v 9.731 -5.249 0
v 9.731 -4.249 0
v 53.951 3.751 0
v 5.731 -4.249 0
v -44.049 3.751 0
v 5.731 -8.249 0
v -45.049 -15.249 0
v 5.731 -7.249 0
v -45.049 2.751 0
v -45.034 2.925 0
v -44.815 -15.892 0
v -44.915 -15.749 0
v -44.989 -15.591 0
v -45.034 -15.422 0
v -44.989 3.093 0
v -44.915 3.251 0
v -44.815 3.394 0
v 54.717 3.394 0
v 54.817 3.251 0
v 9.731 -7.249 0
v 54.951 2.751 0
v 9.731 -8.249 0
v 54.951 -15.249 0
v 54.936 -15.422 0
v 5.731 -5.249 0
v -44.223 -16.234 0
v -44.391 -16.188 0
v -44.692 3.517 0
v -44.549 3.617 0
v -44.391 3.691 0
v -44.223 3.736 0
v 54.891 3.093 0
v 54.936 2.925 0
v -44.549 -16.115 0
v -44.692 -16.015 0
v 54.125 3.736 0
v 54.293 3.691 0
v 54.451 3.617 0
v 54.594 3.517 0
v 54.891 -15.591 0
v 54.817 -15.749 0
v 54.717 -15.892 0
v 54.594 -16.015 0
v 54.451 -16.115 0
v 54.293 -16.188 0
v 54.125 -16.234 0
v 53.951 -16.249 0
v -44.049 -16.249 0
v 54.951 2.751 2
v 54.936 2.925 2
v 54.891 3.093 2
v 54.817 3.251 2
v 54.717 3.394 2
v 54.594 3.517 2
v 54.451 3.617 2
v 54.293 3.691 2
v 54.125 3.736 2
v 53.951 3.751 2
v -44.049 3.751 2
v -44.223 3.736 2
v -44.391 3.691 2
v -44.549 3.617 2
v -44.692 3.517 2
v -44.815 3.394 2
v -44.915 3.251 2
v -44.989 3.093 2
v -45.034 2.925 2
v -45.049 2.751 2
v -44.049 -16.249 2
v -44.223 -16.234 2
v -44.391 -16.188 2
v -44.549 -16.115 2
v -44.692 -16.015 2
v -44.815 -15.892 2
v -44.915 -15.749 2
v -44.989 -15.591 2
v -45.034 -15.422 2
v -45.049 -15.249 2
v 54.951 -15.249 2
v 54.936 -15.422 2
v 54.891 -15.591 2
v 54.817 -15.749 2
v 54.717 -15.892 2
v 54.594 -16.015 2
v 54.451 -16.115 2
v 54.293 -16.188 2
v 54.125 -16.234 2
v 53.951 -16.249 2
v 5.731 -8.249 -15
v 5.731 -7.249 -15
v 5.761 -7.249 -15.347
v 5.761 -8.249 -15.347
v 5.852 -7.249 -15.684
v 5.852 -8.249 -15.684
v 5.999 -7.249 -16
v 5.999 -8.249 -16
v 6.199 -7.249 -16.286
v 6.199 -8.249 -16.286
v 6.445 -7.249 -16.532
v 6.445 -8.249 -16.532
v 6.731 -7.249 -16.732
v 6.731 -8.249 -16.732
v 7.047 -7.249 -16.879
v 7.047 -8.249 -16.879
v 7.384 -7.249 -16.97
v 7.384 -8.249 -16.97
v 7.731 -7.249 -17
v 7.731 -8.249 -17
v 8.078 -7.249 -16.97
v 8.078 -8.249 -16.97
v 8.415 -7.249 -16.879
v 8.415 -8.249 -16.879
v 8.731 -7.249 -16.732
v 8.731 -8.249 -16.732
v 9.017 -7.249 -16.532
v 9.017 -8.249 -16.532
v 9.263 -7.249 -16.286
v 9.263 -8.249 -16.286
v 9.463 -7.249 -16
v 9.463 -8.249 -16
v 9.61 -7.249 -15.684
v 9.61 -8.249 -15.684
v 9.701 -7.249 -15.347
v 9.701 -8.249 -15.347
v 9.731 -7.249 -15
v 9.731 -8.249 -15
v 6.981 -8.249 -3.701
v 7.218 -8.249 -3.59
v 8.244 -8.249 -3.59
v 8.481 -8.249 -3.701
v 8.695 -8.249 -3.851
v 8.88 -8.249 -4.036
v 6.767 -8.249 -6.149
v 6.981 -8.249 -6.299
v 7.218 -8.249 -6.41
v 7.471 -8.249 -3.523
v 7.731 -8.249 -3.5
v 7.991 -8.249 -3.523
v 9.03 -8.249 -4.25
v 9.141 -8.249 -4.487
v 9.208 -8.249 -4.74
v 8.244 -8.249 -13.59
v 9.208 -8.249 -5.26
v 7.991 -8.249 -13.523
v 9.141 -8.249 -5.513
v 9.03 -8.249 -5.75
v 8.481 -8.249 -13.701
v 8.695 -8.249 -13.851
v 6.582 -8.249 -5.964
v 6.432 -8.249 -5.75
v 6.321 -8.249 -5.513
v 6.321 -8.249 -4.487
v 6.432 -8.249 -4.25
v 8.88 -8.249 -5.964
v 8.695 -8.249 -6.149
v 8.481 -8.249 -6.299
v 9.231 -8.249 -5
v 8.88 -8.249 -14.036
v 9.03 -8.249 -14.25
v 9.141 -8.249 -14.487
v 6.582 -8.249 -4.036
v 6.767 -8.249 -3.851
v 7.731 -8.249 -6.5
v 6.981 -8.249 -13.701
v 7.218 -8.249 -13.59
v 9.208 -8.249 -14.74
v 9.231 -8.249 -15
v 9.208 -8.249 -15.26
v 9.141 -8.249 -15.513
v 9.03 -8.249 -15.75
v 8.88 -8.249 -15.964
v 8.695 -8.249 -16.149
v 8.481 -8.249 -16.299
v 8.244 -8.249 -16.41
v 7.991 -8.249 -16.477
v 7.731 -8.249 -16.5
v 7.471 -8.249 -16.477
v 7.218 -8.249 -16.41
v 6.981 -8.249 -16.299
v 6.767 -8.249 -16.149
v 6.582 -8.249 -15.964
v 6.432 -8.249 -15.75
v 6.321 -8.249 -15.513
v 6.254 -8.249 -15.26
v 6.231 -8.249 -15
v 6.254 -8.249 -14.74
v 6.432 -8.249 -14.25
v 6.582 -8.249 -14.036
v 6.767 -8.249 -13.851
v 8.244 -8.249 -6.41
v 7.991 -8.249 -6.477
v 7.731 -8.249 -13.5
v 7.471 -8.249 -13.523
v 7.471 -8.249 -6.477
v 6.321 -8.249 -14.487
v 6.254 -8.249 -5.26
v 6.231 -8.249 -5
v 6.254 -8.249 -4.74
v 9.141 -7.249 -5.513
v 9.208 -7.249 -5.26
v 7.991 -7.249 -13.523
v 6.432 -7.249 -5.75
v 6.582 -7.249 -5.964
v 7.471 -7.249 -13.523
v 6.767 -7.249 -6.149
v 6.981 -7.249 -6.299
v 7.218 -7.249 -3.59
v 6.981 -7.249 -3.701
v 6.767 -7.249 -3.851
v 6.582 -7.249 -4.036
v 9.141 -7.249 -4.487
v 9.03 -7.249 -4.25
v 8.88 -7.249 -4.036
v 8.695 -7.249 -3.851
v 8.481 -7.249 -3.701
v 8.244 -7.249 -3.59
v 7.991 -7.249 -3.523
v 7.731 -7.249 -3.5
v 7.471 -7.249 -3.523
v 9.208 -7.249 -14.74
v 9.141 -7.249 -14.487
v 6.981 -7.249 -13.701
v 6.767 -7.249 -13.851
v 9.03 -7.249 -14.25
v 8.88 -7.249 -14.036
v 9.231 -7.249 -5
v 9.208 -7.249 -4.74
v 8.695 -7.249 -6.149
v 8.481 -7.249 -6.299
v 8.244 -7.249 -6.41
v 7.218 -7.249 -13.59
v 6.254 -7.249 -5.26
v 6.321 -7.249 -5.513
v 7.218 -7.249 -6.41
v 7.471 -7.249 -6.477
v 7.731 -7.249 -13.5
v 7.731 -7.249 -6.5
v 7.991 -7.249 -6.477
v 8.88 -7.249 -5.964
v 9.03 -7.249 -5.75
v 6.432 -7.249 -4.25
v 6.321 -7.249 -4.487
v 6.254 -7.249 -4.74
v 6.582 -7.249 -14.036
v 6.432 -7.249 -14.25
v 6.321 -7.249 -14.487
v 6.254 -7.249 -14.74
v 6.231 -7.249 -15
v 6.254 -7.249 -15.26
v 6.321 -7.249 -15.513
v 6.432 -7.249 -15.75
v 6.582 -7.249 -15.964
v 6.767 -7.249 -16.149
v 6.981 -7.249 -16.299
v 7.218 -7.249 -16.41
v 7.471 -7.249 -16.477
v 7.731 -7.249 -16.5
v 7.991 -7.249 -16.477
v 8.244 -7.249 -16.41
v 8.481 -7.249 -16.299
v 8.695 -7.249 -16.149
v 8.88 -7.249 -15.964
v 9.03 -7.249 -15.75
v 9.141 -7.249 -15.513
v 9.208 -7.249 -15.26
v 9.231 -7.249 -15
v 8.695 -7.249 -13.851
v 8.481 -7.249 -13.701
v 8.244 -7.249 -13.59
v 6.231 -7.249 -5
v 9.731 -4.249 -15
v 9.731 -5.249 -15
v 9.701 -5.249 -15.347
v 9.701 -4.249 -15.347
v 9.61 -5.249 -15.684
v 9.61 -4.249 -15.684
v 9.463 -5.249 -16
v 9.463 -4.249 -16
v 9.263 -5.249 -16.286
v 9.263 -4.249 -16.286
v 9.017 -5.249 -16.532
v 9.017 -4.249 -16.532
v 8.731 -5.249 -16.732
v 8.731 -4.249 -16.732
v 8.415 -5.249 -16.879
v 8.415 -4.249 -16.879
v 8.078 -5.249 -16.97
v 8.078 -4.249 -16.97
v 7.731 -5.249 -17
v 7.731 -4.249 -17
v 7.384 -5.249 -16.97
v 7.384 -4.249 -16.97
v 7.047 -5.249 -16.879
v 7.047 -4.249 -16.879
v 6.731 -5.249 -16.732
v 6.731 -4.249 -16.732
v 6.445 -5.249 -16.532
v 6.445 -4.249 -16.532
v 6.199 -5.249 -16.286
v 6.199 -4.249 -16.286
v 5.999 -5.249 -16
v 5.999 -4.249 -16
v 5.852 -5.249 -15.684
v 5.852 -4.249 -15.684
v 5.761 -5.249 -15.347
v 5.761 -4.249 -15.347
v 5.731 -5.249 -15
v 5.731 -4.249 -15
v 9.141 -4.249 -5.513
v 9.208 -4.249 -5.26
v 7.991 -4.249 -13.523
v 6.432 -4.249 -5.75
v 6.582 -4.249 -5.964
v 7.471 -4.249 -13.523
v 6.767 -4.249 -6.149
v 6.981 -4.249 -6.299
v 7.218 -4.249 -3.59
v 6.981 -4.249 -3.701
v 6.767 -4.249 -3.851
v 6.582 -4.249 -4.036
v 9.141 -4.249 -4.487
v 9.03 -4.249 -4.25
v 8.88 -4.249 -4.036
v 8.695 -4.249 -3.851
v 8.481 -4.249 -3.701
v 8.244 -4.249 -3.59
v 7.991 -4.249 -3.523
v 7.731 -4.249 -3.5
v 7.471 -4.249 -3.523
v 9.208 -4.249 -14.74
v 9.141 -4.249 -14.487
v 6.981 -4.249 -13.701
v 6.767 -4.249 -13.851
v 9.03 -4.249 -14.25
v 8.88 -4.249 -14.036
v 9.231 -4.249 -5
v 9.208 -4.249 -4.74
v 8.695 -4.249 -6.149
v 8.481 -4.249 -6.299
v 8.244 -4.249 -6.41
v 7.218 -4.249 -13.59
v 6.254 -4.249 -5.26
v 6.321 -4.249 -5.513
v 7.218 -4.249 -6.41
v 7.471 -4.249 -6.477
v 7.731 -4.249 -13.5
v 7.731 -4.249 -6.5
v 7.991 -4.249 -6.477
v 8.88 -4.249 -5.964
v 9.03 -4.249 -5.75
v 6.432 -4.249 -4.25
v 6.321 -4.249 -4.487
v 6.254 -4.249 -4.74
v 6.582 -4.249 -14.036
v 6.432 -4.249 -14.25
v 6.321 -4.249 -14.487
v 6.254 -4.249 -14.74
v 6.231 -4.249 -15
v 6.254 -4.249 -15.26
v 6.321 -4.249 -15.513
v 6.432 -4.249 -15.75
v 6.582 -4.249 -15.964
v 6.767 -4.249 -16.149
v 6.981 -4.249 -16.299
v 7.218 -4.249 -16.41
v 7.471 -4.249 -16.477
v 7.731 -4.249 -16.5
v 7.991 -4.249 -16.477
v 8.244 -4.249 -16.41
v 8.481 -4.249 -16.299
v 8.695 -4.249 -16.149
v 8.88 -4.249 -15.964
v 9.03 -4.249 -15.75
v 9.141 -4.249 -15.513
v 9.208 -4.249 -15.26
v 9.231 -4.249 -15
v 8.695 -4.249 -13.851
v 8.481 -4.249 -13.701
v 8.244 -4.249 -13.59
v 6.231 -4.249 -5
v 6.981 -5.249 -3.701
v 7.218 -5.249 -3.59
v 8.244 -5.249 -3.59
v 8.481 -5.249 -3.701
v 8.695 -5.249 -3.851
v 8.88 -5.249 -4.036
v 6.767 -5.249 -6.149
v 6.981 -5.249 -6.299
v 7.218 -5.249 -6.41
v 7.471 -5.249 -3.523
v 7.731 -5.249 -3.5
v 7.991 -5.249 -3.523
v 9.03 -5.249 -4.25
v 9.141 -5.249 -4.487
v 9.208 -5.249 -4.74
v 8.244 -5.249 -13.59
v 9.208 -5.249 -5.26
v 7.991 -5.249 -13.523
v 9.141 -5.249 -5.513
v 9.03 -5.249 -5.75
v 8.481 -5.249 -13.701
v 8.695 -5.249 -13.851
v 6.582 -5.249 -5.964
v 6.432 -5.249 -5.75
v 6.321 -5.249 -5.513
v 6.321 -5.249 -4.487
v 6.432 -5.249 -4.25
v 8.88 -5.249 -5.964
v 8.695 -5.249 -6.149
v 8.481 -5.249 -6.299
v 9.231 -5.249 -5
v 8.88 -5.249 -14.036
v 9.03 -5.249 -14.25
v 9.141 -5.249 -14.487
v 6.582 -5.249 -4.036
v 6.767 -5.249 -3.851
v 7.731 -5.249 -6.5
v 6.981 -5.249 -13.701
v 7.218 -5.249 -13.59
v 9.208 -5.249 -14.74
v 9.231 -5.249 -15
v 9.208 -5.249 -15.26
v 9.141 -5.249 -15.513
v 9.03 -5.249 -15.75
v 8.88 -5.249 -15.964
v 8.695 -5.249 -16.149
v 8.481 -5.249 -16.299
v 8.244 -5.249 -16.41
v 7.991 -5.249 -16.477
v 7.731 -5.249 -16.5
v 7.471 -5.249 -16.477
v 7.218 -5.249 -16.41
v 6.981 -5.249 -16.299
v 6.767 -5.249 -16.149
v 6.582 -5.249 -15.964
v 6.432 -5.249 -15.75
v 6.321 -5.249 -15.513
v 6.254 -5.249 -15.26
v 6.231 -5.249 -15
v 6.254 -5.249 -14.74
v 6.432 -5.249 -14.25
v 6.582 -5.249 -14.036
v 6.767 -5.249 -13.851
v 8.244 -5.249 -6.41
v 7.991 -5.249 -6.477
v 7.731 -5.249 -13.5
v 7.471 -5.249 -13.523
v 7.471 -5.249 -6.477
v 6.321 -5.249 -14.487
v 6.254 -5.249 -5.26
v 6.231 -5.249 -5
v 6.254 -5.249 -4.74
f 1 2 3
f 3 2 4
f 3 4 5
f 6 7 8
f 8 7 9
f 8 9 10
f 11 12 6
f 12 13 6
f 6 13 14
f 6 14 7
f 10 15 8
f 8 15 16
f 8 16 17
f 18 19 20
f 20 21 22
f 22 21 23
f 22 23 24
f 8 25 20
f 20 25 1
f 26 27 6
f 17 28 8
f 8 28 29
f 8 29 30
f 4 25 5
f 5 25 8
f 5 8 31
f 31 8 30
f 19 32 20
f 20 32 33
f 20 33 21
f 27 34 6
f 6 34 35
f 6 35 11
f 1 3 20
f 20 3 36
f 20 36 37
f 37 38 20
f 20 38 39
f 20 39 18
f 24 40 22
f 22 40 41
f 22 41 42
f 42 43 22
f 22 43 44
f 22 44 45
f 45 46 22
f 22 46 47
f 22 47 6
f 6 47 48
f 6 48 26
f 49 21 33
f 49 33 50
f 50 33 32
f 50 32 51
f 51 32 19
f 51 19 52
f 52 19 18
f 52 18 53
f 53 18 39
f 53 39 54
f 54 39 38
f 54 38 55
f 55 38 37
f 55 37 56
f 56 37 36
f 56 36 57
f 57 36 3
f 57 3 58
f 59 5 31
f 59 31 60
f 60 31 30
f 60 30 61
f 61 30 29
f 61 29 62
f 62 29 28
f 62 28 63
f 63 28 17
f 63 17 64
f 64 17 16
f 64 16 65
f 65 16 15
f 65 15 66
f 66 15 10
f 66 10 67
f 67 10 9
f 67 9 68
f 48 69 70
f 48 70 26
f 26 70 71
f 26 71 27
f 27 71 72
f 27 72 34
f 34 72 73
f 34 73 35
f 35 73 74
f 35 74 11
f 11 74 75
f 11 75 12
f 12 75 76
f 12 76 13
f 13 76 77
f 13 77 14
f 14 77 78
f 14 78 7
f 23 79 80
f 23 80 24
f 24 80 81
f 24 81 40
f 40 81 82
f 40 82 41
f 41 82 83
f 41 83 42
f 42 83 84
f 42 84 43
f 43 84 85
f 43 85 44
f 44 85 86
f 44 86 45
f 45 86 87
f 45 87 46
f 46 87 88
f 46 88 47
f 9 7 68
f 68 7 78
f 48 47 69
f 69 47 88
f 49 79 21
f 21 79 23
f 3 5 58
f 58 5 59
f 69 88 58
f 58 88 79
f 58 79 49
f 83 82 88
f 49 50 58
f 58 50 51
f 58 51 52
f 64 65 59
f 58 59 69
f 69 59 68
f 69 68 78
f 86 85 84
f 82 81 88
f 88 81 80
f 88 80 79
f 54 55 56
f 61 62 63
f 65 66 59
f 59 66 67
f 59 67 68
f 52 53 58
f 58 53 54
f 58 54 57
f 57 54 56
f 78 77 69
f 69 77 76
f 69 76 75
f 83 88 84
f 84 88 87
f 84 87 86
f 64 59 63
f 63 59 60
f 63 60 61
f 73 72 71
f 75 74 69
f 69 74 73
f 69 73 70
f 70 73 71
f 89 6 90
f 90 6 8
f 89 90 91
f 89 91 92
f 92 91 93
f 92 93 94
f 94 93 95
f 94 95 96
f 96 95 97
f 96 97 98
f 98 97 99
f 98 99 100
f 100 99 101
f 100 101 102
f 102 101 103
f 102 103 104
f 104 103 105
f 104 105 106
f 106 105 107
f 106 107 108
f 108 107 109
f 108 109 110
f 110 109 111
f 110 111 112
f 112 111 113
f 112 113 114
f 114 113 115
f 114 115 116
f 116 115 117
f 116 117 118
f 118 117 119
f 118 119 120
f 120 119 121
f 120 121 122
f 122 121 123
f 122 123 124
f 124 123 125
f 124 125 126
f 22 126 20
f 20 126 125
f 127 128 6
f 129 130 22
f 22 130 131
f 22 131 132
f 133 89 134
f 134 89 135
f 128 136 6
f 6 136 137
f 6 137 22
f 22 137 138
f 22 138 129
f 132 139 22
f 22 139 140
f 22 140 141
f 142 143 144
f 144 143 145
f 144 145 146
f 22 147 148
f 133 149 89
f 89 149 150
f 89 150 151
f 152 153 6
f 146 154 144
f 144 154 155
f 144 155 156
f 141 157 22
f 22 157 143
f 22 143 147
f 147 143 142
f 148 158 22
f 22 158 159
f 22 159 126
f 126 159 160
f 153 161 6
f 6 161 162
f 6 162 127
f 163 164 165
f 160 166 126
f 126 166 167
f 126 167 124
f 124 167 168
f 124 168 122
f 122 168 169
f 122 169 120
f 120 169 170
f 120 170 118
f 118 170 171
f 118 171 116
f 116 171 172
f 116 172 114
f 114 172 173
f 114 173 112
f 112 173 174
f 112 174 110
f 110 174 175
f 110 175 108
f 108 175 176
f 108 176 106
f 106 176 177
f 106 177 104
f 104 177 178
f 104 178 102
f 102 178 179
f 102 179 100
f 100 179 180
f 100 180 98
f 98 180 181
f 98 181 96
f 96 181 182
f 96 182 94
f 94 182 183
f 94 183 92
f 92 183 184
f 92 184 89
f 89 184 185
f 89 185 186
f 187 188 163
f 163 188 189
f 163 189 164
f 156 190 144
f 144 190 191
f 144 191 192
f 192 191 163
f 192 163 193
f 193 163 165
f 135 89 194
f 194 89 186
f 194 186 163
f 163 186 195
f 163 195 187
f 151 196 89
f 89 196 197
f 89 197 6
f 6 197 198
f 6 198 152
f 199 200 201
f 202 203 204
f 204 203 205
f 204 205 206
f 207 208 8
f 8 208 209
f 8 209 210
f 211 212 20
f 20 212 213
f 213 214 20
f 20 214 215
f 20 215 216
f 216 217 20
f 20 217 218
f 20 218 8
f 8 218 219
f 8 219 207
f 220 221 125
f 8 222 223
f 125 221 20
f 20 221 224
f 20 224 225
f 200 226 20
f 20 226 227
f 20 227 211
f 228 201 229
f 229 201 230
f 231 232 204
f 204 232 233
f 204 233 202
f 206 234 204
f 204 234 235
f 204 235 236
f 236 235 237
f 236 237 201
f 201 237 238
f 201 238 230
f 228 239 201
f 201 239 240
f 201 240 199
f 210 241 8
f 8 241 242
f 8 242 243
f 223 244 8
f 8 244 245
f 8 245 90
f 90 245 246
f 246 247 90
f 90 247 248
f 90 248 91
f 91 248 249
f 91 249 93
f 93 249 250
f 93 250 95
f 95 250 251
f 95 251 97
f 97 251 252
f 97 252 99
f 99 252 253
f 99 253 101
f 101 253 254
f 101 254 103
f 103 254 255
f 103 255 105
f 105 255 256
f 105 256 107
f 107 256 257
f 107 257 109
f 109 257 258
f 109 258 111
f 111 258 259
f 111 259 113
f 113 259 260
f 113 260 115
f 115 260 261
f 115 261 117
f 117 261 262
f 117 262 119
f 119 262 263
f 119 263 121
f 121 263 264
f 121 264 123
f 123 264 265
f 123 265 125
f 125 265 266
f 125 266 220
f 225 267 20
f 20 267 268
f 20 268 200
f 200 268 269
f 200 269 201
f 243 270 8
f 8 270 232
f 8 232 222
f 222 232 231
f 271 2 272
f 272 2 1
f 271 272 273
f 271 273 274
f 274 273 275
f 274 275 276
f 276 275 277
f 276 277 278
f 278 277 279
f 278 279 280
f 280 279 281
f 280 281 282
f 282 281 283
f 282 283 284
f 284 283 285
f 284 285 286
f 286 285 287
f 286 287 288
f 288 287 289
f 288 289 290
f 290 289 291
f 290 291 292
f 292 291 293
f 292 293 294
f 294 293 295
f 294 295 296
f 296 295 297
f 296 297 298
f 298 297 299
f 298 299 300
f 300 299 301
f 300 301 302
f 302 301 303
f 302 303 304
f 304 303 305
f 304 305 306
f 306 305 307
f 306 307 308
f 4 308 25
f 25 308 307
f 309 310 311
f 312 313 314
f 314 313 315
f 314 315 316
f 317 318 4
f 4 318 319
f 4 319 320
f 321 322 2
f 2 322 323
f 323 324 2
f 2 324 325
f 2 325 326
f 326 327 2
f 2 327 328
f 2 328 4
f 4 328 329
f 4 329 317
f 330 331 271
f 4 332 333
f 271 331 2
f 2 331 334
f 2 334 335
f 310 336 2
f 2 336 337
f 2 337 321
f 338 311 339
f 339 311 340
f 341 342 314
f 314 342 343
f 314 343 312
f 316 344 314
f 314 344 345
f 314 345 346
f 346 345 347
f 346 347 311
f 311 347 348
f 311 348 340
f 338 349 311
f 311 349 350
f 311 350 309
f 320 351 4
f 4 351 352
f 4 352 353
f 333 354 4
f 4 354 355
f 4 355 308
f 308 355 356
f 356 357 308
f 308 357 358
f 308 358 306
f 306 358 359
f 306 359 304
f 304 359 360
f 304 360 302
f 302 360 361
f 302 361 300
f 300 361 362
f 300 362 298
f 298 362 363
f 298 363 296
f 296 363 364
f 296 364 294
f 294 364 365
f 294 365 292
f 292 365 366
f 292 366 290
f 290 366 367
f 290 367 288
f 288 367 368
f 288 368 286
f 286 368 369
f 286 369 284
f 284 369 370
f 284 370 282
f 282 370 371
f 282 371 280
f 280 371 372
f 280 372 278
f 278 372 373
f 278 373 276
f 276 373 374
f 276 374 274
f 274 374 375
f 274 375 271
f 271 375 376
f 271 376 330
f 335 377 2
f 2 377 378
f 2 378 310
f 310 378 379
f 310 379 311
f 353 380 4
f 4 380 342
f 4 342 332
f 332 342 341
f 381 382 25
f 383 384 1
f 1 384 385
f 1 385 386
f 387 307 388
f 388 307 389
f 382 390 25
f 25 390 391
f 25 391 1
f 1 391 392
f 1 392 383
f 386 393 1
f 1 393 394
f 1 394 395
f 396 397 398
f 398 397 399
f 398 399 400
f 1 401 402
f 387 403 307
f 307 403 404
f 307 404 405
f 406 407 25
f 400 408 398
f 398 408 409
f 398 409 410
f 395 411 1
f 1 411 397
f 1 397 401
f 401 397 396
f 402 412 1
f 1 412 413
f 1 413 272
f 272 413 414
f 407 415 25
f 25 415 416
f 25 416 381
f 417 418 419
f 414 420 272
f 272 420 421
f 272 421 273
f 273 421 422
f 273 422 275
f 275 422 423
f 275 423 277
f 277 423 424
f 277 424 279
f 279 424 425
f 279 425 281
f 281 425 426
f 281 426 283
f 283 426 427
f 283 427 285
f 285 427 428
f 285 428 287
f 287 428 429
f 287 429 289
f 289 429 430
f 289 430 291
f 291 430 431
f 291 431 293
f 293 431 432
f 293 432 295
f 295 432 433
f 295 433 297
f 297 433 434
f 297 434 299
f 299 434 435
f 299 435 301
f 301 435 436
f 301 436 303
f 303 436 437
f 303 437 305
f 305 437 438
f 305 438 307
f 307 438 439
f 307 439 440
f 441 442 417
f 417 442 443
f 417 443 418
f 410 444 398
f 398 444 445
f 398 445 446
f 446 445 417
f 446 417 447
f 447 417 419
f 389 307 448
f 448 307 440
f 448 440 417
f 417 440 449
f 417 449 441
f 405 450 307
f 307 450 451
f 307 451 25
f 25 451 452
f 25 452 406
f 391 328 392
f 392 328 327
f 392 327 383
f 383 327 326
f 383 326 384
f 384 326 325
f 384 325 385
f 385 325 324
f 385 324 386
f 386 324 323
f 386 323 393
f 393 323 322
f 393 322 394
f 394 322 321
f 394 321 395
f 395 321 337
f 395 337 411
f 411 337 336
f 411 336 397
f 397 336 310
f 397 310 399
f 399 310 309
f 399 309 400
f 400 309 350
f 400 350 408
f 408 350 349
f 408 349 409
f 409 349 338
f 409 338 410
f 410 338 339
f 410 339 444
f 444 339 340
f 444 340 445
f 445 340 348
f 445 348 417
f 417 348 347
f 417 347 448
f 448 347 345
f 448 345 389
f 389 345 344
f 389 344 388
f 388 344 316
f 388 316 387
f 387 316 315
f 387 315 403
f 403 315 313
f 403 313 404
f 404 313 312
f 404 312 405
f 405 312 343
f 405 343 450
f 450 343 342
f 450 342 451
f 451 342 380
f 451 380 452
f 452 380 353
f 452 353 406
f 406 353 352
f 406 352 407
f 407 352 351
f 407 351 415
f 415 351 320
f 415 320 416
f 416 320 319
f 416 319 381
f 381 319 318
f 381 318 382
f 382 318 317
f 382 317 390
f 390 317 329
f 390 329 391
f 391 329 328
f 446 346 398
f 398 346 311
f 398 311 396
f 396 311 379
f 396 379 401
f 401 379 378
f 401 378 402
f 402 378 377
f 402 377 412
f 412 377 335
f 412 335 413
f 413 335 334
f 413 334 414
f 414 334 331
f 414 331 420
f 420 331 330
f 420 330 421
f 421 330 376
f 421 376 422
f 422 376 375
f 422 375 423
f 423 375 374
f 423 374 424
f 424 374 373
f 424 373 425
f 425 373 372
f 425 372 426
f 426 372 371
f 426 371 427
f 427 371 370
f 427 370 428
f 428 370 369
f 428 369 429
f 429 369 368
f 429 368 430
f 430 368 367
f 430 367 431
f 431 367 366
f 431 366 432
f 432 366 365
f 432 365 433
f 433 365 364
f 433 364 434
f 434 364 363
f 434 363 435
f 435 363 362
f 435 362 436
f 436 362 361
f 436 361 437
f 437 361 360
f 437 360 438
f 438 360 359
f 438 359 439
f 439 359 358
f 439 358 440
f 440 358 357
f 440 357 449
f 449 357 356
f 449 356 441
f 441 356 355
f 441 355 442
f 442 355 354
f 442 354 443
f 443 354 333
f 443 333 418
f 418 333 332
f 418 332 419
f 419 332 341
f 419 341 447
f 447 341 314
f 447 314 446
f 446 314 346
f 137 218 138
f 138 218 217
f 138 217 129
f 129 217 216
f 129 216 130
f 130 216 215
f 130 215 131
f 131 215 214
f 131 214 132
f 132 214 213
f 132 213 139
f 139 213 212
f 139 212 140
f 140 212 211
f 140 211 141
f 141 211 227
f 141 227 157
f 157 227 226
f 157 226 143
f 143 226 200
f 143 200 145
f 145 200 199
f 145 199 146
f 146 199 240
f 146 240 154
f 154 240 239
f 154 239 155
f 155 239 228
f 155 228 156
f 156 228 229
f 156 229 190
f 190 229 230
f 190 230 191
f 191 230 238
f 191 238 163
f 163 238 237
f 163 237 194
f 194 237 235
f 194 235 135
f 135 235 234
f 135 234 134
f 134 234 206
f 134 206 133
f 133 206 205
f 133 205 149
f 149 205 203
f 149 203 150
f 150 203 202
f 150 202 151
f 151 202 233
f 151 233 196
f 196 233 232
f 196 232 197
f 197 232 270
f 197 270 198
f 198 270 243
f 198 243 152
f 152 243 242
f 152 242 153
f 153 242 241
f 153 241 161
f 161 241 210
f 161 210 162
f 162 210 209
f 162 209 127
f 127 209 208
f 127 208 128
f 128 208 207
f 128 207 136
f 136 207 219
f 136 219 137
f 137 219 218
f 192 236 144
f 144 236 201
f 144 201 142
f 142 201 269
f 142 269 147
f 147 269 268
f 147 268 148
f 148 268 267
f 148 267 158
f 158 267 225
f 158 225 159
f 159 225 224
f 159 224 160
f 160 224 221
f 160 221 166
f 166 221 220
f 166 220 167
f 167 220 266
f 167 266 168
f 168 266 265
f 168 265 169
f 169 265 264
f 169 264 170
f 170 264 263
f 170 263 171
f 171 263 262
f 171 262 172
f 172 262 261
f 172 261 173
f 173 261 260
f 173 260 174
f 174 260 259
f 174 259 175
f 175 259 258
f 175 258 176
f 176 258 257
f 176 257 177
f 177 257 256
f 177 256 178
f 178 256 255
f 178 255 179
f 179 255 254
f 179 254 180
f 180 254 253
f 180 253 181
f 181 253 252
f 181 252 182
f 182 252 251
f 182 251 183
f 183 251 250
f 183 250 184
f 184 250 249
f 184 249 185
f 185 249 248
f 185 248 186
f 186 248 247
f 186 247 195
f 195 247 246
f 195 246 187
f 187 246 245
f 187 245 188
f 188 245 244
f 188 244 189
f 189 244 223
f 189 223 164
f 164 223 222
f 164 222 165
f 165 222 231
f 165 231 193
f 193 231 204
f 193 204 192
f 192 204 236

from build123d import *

# Parameters (mm, degrees)
SKETCH1_W           = 100
SKETCH1_H           = 20
BOSS_EXTRUDE1_DEPTH = 2
FILLET6_R           = 1
FILLET7_R           = 1
FILLET8_R           = 1
FILLET9_R           = 1
BOSS_EXTRUDE2_DEPTH = 1
BOSS_EXTRUDE3_START = 1
BOSS_EXTRUDE3_DEPTH = 1
SKETCH4_R           = 1.5
CUT_EXTRUDE4_DEPTH  = 11


with BuildPart() as part:
    # Sketch1 → Boss-Extrude1 (new body)
    with BuildSketch(Plane.XY):
        with Locations((4.951011889, -6.24877109)):
            Rectangle(SKETCH1_W, SKETCH1_H)
    extrude(amount=BOSS_EXTRUDE1_DEPTH)

    # Fillet6
    fillet6_edges = [part.edges().sort_by_distance(p)[0] for p in [
        (54.951011889, -16.24877109, 1),
    ]]
    fillet(fillet6_edges, radius=FILLET6_R)

    # Fillet7
    fillet7_edges = [part.edges().sort_by_distance(p)[0] for p in [
        (-45.048988111, -16.24877109, 1),
    ]]
    fillet(fillet7_edges, radius=FILLET7_R)

    # Fillet8
    fillet8_edges = [part.edges().sort_by_distance(p)[0] for p in [
        (-45.048988111, 3.75122891, 1),
    ]]
    fillet(fillet8_edges, radius=FILLET8_R)

    # Fillet9
    fillet9_edges = [part.edges().sort_by_distance(p)[0] for p in [
        (54.951011889, 3.75122891, 1),
    ]]
    fillet(fillet9_edges, radius=FILLET9_R)

    # Sketch2 → Boss-Extrude2 (add)
    with BuildSketch(Plane(origin=(0, -7.24877109, 0), x_dir=(-1, 0, 0), z_dir=(0, -1, 0))):
        with BuildLine():
            Line((-9.730976741, 0), (-9.730976741, 15))
            ThreePointArc((-9.730976741, 15), (-7.730976741, 17), (-5.730976741, 15))
            Line((-5.730976741, 15), (-5.730976741, 0))
            Line((-5.730976741, 0), (-9.730976741, 0))
        make_face()
    extrude(amount=BOSS_EXTRUDE2_DEPTH)

    # Sketch3 → Boss-Extrude3 (add)
    with BuildSketch(Plane(origin=(0, -5.24877109, 0), x_dir=(1, 0, 0), z_dir=(0, 1, 0)).offset(BOSS_EXTRUDE3_START)):
        with BuildLine():
            Line((5.730976741, 0), (5.730976741, 15))
            ThreePointArc((5.730976741, 15), (7.730976741, 17), (9.730976741, 15))
            Line((9.730976741, 15), (9.730976741, 0))
            Line((9.730976741, 0), (5.730976741, 0))
        make_face()
    extrude(amount=-BOSS_EXTRUDE3_DEPTH)

    # Sketch4 → Cut-Extrude4 (cut)
    with BuildSketch(Plane(origin=(0, -4.24877109, 0), x_dir=(1, 0, 0), z_dir=(0, 1, 0))):
        with Locations(Location((7.730976741, 15, 0), (0, 0, 270))):
            Circle(SKETCH4_R)
        with Locations(Location((7.730976741, 5, 0), (0, 0, 270))):
            Circle(SKETCH4_R)
    extrude(amount=-CUT_EXTRUDE4_DEPTH, mode=Mode.SUBTRACT)


solid = part.part
